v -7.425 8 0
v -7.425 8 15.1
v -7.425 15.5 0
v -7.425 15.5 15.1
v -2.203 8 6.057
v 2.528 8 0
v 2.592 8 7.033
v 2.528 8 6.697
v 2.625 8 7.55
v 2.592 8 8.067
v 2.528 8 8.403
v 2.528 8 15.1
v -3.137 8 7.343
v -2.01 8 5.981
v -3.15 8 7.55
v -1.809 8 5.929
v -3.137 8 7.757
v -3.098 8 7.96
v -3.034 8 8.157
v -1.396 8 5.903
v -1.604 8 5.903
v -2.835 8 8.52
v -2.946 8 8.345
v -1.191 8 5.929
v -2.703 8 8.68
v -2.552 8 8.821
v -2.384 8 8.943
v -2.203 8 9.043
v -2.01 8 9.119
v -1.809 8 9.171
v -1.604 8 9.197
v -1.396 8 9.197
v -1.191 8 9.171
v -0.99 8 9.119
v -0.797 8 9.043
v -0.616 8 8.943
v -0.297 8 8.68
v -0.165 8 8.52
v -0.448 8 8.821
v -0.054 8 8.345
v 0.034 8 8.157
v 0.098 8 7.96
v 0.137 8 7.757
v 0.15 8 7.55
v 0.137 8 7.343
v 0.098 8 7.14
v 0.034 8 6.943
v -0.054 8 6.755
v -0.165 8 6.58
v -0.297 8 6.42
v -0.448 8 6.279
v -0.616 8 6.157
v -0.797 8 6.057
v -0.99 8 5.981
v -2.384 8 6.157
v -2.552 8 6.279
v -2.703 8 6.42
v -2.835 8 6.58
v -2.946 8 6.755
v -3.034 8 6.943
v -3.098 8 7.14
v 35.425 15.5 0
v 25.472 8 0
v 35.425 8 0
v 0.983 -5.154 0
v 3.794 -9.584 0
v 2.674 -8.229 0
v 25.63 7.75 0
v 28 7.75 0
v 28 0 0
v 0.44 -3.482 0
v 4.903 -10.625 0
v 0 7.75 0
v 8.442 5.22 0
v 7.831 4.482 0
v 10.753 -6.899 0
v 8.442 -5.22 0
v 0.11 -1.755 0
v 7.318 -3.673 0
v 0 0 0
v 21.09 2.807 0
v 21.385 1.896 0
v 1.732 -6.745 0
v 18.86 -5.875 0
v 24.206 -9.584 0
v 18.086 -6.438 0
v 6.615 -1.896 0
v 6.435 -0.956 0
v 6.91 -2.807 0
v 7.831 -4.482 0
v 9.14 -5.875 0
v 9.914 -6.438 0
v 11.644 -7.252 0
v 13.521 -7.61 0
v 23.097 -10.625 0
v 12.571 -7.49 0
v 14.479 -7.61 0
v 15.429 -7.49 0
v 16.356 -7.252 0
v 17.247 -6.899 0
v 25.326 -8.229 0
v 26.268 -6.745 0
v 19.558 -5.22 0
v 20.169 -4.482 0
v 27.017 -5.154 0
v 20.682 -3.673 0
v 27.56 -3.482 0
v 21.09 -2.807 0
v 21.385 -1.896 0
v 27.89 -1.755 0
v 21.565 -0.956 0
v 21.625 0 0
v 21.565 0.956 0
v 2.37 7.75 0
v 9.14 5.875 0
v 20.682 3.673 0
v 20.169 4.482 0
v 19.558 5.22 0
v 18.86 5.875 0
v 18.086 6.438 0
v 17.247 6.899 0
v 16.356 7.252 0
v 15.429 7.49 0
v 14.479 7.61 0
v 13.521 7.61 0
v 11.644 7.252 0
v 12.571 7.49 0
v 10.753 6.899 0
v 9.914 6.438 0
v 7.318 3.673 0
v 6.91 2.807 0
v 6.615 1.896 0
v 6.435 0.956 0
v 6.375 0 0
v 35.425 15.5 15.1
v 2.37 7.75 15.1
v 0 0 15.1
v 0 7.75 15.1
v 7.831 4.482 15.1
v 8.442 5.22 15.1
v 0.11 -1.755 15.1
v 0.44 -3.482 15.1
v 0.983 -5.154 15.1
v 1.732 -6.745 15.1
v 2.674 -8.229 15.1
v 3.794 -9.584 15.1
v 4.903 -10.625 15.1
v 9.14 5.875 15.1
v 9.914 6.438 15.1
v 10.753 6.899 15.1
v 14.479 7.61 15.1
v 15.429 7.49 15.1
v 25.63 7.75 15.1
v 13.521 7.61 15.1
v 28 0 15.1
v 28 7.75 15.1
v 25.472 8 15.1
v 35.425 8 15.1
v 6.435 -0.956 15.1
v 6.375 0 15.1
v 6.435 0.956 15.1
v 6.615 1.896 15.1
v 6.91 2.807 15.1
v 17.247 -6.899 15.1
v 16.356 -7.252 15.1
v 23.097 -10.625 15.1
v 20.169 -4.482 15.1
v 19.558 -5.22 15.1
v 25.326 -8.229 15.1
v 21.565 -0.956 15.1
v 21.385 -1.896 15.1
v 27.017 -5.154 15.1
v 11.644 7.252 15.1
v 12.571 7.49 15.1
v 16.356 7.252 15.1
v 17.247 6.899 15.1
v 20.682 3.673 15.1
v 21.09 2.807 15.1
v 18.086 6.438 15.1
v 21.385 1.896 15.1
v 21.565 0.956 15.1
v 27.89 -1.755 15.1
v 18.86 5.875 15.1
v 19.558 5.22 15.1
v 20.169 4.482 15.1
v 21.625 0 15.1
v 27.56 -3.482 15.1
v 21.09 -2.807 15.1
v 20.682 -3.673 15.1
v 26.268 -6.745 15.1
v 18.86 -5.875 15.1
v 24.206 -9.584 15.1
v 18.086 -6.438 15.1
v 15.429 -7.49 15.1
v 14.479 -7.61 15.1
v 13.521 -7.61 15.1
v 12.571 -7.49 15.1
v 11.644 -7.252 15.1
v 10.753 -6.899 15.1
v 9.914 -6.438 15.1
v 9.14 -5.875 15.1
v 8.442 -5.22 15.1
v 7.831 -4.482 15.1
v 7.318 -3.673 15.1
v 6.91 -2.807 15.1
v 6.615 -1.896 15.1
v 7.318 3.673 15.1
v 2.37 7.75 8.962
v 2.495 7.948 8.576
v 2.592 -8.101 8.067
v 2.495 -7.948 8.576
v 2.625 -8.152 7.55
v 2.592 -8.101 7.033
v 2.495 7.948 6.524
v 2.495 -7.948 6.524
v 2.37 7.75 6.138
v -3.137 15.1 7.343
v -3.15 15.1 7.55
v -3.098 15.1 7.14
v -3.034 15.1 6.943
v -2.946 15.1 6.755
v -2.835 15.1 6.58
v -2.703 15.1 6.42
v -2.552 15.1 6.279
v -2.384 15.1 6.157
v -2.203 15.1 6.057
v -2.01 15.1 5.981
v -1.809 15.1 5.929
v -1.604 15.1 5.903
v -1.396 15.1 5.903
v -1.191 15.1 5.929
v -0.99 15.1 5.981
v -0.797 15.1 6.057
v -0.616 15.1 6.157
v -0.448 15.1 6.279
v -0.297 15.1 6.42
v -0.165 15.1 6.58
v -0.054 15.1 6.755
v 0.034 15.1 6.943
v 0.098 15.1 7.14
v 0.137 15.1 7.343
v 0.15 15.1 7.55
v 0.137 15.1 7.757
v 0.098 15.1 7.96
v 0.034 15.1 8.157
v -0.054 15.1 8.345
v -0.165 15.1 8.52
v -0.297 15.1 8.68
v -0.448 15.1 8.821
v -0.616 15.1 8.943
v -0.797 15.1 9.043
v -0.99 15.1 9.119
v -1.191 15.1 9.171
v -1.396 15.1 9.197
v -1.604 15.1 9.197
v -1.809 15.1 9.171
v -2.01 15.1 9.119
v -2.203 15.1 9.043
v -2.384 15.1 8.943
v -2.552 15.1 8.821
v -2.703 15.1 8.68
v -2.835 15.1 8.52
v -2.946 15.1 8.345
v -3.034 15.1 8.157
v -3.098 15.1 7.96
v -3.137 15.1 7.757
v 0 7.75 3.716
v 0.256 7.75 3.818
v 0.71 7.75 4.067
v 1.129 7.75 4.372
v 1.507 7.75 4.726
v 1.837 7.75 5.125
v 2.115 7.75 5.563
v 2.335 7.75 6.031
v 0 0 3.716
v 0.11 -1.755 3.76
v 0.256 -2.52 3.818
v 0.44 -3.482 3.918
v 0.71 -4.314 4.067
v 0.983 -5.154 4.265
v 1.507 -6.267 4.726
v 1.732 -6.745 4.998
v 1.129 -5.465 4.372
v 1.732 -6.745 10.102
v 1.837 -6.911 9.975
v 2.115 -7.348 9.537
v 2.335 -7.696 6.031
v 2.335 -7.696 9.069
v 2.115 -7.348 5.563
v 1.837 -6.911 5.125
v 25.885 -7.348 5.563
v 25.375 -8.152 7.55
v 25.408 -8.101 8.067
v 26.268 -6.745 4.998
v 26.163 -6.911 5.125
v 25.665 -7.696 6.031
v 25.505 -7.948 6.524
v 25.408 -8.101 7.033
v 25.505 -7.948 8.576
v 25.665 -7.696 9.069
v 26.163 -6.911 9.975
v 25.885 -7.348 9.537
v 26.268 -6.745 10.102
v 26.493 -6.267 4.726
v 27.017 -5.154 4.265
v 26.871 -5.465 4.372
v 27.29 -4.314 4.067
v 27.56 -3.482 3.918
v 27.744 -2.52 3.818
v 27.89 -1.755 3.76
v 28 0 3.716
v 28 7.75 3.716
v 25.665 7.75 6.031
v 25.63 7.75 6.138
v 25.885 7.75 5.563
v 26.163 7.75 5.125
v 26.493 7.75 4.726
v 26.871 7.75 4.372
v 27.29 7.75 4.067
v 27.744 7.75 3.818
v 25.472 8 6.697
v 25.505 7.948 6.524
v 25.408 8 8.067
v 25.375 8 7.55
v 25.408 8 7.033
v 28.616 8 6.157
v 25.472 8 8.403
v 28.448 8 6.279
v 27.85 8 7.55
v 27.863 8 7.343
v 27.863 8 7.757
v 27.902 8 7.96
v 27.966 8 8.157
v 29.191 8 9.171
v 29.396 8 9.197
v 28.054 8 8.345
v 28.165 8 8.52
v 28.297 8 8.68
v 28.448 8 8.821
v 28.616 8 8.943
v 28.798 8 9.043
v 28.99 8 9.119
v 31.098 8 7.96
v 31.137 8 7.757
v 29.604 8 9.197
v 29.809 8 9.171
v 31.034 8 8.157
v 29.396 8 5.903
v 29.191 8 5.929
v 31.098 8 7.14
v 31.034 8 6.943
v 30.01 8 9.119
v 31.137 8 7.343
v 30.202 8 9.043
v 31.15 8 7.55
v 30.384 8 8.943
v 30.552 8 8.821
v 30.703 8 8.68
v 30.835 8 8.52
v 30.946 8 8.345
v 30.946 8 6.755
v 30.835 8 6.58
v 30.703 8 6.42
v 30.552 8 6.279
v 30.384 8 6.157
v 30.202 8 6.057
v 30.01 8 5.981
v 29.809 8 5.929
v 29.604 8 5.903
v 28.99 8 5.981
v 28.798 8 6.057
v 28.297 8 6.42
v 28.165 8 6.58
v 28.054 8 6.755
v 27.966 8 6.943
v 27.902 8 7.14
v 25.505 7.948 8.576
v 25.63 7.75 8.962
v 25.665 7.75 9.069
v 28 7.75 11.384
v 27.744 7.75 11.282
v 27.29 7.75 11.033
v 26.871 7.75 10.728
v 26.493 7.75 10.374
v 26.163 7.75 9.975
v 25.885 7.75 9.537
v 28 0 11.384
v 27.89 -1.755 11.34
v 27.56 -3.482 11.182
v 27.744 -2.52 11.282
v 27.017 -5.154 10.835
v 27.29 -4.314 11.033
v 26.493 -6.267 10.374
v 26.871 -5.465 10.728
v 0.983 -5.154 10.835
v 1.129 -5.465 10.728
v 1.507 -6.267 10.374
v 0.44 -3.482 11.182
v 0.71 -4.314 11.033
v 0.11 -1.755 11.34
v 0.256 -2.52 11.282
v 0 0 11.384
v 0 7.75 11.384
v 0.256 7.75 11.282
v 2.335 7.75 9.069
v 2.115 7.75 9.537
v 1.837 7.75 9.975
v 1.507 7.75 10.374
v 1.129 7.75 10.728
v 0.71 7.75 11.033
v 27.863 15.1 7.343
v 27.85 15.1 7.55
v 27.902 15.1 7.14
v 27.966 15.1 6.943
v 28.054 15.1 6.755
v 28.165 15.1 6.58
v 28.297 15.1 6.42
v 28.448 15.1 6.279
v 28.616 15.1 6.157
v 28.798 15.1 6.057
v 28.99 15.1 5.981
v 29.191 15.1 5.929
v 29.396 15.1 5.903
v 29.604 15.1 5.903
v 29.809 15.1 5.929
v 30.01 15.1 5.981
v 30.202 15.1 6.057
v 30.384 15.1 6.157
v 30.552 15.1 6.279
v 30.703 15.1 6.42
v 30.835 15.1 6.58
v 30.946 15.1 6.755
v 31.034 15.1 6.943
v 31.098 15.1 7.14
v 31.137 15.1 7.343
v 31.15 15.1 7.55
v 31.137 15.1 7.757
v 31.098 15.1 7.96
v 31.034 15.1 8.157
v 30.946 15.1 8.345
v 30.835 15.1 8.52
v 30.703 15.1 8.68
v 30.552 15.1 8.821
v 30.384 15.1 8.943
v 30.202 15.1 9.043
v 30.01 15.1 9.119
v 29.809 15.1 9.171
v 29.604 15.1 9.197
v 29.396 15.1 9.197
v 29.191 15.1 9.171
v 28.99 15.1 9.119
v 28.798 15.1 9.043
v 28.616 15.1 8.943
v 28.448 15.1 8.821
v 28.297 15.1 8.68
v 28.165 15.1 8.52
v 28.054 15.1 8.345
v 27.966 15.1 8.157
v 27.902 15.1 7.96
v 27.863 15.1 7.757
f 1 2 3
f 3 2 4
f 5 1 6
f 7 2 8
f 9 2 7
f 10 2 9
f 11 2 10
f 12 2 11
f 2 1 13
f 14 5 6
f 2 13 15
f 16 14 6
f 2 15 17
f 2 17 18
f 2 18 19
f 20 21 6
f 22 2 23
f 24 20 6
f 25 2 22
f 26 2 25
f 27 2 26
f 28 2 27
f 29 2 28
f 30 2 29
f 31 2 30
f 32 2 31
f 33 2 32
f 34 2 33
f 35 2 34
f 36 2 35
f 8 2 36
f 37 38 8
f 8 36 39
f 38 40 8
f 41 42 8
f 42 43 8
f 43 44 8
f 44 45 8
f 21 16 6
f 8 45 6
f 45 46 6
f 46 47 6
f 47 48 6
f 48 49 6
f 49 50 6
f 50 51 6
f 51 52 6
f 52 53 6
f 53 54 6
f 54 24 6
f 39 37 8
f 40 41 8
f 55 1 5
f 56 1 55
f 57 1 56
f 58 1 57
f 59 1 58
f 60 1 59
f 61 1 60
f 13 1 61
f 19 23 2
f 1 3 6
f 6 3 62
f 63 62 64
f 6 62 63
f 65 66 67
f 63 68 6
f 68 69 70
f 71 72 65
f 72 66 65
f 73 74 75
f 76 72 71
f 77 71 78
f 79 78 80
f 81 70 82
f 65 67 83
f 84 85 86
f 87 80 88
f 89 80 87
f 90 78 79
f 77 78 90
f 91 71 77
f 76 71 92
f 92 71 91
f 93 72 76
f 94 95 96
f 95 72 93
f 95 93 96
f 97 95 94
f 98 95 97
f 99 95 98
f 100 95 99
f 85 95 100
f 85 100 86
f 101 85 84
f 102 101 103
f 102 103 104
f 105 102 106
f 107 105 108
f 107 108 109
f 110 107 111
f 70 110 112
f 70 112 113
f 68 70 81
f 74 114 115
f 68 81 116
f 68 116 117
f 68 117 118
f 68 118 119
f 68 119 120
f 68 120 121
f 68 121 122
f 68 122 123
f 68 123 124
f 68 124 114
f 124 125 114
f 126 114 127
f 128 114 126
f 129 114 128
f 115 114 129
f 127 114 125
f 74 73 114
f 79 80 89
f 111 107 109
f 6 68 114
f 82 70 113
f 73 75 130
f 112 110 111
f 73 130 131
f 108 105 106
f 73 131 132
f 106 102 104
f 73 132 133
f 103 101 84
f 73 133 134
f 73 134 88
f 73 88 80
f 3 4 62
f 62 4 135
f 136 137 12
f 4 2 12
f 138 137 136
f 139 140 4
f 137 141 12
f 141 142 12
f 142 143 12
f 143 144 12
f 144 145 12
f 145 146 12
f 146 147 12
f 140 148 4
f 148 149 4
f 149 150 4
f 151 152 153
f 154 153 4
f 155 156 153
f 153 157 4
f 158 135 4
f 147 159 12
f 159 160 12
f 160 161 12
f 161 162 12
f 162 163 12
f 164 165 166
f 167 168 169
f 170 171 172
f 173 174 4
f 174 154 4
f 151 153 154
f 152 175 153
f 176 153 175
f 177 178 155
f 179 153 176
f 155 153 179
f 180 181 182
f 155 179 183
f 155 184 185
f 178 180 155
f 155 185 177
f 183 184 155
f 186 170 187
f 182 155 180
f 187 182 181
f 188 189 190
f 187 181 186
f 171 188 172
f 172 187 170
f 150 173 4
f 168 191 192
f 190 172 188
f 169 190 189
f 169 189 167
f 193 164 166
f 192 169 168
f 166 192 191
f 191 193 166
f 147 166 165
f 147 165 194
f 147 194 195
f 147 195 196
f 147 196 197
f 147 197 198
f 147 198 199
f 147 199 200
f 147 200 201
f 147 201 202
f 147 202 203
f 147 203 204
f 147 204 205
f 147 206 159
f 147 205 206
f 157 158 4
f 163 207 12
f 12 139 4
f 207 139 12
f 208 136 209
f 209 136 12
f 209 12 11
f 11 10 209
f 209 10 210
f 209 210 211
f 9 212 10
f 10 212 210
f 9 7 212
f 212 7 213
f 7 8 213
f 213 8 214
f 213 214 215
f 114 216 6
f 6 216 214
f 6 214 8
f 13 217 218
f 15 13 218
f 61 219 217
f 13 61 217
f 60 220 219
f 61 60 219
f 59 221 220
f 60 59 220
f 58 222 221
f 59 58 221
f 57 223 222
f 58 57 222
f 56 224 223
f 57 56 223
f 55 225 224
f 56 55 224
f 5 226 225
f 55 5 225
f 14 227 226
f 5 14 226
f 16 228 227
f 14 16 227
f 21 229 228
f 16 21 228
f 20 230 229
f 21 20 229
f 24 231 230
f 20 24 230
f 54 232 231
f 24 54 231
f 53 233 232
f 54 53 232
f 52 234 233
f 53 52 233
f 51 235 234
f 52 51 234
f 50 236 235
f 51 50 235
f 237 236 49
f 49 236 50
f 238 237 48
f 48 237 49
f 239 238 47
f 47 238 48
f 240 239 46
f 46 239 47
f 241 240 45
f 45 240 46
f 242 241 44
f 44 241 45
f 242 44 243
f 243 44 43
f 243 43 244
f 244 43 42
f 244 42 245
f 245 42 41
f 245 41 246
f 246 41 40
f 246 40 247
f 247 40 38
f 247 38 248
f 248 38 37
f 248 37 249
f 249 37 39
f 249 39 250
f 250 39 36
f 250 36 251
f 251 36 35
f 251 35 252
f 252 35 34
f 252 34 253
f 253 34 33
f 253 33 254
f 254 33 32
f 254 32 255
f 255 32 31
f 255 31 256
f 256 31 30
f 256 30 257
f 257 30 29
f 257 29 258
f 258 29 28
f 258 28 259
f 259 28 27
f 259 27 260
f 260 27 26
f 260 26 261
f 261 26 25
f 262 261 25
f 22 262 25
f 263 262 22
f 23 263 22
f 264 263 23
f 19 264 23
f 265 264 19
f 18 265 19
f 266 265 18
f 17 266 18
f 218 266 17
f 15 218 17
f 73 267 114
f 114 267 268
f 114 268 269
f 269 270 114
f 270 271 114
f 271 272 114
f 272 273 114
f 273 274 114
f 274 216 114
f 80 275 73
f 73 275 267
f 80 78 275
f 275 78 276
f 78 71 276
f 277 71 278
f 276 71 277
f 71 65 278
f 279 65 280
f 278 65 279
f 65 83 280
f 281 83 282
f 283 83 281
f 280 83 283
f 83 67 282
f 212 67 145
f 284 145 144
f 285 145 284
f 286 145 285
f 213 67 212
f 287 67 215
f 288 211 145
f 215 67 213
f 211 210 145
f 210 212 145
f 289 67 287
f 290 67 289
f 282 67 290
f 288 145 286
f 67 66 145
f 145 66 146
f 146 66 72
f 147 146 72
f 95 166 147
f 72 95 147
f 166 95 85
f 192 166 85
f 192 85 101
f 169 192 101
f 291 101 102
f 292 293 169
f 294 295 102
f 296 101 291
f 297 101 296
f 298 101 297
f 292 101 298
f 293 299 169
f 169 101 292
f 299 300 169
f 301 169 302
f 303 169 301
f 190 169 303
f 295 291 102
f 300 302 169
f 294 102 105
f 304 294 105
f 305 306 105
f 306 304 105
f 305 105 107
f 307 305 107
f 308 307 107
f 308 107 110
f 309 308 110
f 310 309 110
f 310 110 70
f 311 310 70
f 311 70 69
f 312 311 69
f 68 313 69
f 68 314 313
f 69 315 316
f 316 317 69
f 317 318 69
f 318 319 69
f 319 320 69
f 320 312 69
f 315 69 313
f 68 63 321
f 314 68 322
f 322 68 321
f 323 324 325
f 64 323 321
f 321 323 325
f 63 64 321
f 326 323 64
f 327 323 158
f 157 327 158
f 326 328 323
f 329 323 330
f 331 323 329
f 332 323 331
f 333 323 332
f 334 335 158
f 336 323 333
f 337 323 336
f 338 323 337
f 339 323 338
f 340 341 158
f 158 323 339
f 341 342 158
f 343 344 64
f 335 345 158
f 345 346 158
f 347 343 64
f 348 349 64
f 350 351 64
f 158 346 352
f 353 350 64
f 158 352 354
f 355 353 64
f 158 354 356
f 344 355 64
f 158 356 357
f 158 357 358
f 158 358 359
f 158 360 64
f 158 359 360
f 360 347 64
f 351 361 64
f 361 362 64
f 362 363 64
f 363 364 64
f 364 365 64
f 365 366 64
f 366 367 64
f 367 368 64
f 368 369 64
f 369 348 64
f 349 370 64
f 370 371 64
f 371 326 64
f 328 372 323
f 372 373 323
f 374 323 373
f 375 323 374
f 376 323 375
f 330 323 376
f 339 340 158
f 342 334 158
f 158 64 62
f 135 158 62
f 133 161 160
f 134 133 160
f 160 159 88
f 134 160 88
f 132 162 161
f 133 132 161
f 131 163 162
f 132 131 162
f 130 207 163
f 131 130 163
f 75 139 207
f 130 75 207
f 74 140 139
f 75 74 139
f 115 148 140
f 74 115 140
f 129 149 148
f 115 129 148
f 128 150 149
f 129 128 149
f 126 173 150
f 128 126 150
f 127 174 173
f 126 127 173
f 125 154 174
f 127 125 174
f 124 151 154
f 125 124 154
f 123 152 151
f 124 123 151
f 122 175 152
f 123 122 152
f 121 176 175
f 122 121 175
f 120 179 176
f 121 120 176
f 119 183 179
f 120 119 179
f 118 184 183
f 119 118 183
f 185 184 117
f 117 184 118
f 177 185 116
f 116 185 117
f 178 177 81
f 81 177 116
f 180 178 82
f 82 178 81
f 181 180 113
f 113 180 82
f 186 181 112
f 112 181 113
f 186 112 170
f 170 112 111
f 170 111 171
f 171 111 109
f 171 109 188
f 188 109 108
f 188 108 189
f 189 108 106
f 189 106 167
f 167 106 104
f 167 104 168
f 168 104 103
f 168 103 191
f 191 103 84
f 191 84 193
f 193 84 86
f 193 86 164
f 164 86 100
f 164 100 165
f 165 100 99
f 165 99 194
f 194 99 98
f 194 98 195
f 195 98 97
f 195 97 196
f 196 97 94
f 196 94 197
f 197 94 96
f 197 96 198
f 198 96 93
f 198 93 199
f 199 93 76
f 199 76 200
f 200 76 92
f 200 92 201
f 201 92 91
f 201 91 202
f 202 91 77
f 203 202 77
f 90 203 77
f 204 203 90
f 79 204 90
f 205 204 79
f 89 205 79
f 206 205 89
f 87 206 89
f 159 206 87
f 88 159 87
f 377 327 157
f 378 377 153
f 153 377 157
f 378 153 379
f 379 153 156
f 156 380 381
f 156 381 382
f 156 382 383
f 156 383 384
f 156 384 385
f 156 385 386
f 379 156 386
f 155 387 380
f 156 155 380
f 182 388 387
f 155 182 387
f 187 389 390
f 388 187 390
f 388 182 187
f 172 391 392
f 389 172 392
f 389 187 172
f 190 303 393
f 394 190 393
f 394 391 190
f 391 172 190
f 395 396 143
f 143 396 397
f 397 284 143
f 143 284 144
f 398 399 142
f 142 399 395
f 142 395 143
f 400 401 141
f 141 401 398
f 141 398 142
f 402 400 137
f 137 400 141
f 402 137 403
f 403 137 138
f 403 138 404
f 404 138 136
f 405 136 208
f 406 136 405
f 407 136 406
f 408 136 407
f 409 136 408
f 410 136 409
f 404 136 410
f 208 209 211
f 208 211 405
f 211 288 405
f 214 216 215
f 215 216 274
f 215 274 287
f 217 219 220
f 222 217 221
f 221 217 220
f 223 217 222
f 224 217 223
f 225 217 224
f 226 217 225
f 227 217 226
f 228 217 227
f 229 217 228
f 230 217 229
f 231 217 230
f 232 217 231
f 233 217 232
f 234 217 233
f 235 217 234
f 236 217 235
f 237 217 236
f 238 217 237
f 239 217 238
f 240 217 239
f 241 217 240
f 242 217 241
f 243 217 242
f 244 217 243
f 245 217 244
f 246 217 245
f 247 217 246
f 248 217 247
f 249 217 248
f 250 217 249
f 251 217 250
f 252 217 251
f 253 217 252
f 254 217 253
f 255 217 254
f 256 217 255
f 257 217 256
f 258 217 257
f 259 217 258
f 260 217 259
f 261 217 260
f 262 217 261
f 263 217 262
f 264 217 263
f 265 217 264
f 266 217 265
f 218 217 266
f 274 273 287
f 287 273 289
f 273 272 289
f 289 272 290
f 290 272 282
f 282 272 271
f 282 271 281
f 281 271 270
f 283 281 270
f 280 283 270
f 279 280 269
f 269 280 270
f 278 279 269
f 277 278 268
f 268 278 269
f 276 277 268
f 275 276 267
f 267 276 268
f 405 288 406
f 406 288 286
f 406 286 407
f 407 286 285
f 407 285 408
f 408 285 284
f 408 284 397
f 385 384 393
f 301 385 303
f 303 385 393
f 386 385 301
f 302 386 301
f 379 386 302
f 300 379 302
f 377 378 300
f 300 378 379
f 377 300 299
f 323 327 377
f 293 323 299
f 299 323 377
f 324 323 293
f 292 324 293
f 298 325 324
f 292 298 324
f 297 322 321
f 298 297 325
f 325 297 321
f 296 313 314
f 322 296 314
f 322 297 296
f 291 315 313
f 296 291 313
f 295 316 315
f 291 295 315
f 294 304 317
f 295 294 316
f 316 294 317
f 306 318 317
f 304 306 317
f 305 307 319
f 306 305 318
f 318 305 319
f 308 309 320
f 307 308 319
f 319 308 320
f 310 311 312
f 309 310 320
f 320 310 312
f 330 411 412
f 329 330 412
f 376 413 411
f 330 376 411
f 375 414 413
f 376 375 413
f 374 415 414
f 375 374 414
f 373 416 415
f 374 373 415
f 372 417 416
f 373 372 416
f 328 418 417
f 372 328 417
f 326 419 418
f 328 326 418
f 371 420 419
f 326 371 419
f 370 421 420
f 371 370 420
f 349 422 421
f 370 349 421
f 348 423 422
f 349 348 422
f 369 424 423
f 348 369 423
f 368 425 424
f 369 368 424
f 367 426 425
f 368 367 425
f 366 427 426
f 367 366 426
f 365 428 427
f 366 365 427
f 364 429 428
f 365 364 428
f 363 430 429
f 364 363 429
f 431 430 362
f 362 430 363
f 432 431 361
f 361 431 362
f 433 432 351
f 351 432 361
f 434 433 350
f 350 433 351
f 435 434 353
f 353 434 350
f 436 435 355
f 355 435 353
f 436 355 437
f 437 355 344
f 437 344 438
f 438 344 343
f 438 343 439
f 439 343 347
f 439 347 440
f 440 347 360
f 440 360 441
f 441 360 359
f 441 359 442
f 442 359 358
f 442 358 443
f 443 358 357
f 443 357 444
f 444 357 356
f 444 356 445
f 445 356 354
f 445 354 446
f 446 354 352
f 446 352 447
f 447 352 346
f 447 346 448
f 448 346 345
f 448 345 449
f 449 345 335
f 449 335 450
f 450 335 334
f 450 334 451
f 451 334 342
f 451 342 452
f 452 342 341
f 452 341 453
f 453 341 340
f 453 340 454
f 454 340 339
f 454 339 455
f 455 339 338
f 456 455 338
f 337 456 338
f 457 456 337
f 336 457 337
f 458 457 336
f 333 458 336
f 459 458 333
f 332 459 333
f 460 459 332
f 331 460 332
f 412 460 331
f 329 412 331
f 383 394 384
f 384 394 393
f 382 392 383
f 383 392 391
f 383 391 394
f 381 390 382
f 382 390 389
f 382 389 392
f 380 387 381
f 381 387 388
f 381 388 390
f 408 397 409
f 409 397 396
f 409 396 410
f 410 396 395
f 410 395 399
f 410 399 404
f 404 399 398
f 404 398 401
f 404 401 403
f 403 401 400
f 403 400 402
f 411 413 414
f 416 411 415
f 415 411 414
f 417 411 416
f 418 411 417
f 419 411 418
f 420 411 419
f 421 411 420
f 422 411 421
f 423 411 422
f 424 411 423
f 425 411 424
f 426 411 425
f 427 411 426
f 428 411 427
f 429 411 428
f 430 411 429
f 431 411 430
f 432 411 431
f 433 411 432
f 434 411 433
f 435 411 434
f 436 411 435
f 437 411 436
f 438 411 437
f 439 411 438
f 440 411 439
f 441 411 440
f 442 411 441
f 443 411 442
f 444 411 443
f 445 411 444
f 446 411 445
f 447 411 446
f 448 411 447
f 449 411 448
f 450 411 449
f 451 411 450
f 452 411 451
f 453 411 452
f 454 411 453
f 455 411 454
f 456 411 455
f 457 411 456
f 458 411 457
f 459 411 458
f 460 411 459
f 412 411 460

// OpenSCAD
// file: functions.scad
// PRUSA Mendel  
// Functions used in many files
// GNU GPL v2
// Josef Průša
// josefprusa@me.com
// prusadjs.cz
// http://www.reprap.org/wiki/Prusa_Mendel
// http://github.com/prusajr/PrusaMendel

module nut(d,h,horizontal=true){
cornerdiameter =  (d / 2) / cos (180 / 6);
cylinder(h = h, r = cornerdiameter, $fn = 6);
if(horizontal){
for(i = [1:6]){
	rotate([0,0,60*i]) translate([-cornerdiameter-0.2,0,0]) rotate([0,0,-45]) cube(size = [2,2,h]);
}}
}

// By nophead
module polyhole(d,h) {
    n = max(round(2 * d),3);
    rotate([0,0,180])
        cylinder(h = h, r = (d / 2) / cos (180 / n), $fn = n);
}

module roundcorner(diameter){
	difference(){
		cube(size = [diameter,diameter,99], center = false);
		translate(v = [diameter, diameter, 0]) cylinder(h = 100, r=diameter, center=true);
	}
}
// file: metric.scad
// PRUSA Mendel  
// Default metric sizes
// GNU GPL v2
// Josef Průša
// josefprusa@me.com
// prusadjs.cz
// http://www.reprap.org/wiki/Prusa_Mendel
// http://github.com/prusajr/PrusaMendel

// DONT CHANGE THIS FILE! ALTER VALUES IN CONFIGURATION.SCAD INSTEAD

// RODS

threaded_rod_diameter = 8;
threaded_rod_diameter_horizontal = 8;
smooth_bar_diameter = 8;
smooth_bar_diameter_horizontal = 8;

// Nuts and bolts

m8_diameter = 8;
m8_nut_diameter = 14.5;

m4_diameter = 4;
m4_nut_diameter = 7.5;

m3_diameter = 3;
m3_nut_diameter = 5;

// Bushing holder

bushing_core_diameter = smooth_bar_diameter;
bushing_material_thickness = 1;

// Motors

motor_shaft = 5.1;
// file: lm8uu_mount_retainer.scad
// f. beachler
// longevity software d.b.a. terawatt industries

include <configuration.scad>;

$fn=50;

mnt_id = 15 + .25;
mnt_od = 22;
lm8uu_thickness = 6;
lm8uu_mnt_height = 15.05;
mount_screws = true;
mnt_screw_dia = m4_diameter;
base = false;	// true for horizontal base
base_thickness = 6;		// ignored if base=false
base_mnt_sep = 35;

lm8uu_mount_retainer(mnt_od, mnt_id, lm8uu_mnt_height, lm8uu_thickness, mount_screws, mnt_screw_dia, base, base_thickness, base_mnt_sep);

module lm8uu_mount_retainer(lo = mnt_od, li = mnt_id, h = lm8uu_mnt_height, t = lm8uu_thickness, mnt = mount_screws, mntd = mnt_screw_dia, base = base, bt = base_thickness, bmntsep = base_mnt_sep, boreoffset = true) {
	difference() {
		union() {
			if (!base) {
				cube([lo + t, li + t, h]);
			} else {
				cube([lo + t, li - bt, h]);
			}
			translate([(lo + t) / 2, 0, 0]) cylinder(r = (lo + t) / 2, h = h);
		}
		if (!base && mnt) {
			translate([t, lo - t, -0.01]) cylinder(r = mntd / 2, h = h + 0.02);
			translate([lo, lo - t, -0.01]) cylinder(r = mntd / 2, h = h + 0.02);
		}
		if (base) {
			// base mounting hole clearance
			rotate([90, 0, 0]) {
				translate([(lo + t) / 2, h / 2, -bt * 2 - 0.01]) {
					translate([-bmntsep / 2, 0, 0]) cylinder(r = mntd * 1.25, h = h * 2 + 0.02);
					translate([bmntsep / 2, 0, 0]) cylinder(r = mntd * 1.25, h = h * 2 + 0.02);
				}
			}
			if (boreoffset) {
				// offset bore
				translate([(lo + t) / 2, (lo - li) / 2, -0.01]) cylinder(r = li / 2, h = h + 0.02);
			} else {
				// normal bore
				translate([(lo + t) / 2, 0, -0.01]) cylinder(r = li / 2 , h = h + 0.02);
			}
			// cutoff bottom
			translate([0, -bt - lo - (lo - li) / 2, -0.01]) cube([lo + t, li + t + 1, h + 0.02]);
		} else {
			// normal bore
			translate([(lo + t) / 2, 0, -0.01]) cylinder(r = li / 2 , h = h + 0.02);
		}
	}
	if (base) {
		// base mounting holes
		difference() {
			translate([-mntd * 2.25, lo / 2 - t / 2, 0]) cube([lo + t + mntd * 4.5, bt, h]);
			rotate([90, 0, 0]) {
				translate([(lo + t) / 2, h / 2, -h]) {
					translate([-bmntsep / 2, 0, 0]) cylinder(r = mntd / 2, h = h + 0.02);
					translate([bmntsep / 2, 0, 0]) cylinder(r = mntd / 2, h = h + 0.02);
				}
			}
			if (boreoffset) {
				// offset bore
				translate([(lo + t) / 2, (lo - li) / 2, -0.01]) cylinder(r = li / 2, h = h + 0.02);
			}
		}
	}
}
// file: configuration.scad
// PRUSA Mendel  
// Configuration file
// GNU GPL v2
// Josef Průša
// josefprusa@me.com
// prusadjs.cz
// http://www.reprap.org/wiki/Prusa_Mendel
// http://github.com/prusajr/PrusaMendel

// PLEASE SELECT ONE OF THE CONFIGURATIONS BELOW
// BY UN-COMMENTING IT

// Uncomment for metric settings
// METRIC METRIC METRIC METRIC METRIC METRIC METRIC METRIC 

include <metric.scad>;

// Uncomment for imperial settings
// IMPERIAL IMPERIAL IMPERIAL IMPERIAL IMPERIAL IMPERIAL IMPERIAL 

//include <sae.scad>;

//thin_wall = 3;
// LM8UU
//linear = false;

// override settings by customizing below
// CUSTOM CUSTOM CUSTOM CUSTOM CUSTOM CUSTOM CUSTOM CUSTOM CUSTOM

threaded_rod_diameter = 8.2;
threaded_rod_diameter_horizontal = 8.2;
smooth_bar_diameter = 8.3;
smooth_bar_diameter_horizontal = 8.3;

// Nuts and bolts

m8_diameter = 8.3;
m8_nut_diameter = 15;

m4_diameter = 4.2;
m4_nut_diameter = 9;

m3_diameter = 3.3;
m3_nut_diameter = 5.8;

///counted stuff
m3_nut_diameter_bigger = ((m3_nut_diameter  / 2) / cos (180 / 6))*2;

// functions 
include <functions.scad>
// main file
// F. Beachler

include <configuration.scad>;
use <lm8uu_mount_retainer.scad>;

$fn=50;

mnt_id = 15 + .25;
mnt_od = 22;
lm8uu_thickness = 6;
lm8uu_mnt_height = 15.1;
mount_screws = true;
mnt_screw_dia = m3_diameter;
base_thickness = 7.5;		// ignored if base=false
base_mnt_sep = 31;

y_lm8uu_mount_retainer(mnt_od, mnt_id, lm8uu_mnt_height, lm8uu_thickness, mount_screws, mnt_screw_dia, true, base_thickness, base_mnt_sep, false);

module y_lm8uu_mount_retainer(lo = mnt_od, li = mnt_id, h = lm8uu_mnt_height, t = lm8uu_thickness, mnt = mount_screws, mntd = mnt_screw_dia, base = true, bt = base_thickness, bmntsep = base_mnt_sep, bo = false) {
	lm8uu_mount_retainer(lo, li, h, t, mnt, mntd, base, bt, bmntsep, bo);
}
